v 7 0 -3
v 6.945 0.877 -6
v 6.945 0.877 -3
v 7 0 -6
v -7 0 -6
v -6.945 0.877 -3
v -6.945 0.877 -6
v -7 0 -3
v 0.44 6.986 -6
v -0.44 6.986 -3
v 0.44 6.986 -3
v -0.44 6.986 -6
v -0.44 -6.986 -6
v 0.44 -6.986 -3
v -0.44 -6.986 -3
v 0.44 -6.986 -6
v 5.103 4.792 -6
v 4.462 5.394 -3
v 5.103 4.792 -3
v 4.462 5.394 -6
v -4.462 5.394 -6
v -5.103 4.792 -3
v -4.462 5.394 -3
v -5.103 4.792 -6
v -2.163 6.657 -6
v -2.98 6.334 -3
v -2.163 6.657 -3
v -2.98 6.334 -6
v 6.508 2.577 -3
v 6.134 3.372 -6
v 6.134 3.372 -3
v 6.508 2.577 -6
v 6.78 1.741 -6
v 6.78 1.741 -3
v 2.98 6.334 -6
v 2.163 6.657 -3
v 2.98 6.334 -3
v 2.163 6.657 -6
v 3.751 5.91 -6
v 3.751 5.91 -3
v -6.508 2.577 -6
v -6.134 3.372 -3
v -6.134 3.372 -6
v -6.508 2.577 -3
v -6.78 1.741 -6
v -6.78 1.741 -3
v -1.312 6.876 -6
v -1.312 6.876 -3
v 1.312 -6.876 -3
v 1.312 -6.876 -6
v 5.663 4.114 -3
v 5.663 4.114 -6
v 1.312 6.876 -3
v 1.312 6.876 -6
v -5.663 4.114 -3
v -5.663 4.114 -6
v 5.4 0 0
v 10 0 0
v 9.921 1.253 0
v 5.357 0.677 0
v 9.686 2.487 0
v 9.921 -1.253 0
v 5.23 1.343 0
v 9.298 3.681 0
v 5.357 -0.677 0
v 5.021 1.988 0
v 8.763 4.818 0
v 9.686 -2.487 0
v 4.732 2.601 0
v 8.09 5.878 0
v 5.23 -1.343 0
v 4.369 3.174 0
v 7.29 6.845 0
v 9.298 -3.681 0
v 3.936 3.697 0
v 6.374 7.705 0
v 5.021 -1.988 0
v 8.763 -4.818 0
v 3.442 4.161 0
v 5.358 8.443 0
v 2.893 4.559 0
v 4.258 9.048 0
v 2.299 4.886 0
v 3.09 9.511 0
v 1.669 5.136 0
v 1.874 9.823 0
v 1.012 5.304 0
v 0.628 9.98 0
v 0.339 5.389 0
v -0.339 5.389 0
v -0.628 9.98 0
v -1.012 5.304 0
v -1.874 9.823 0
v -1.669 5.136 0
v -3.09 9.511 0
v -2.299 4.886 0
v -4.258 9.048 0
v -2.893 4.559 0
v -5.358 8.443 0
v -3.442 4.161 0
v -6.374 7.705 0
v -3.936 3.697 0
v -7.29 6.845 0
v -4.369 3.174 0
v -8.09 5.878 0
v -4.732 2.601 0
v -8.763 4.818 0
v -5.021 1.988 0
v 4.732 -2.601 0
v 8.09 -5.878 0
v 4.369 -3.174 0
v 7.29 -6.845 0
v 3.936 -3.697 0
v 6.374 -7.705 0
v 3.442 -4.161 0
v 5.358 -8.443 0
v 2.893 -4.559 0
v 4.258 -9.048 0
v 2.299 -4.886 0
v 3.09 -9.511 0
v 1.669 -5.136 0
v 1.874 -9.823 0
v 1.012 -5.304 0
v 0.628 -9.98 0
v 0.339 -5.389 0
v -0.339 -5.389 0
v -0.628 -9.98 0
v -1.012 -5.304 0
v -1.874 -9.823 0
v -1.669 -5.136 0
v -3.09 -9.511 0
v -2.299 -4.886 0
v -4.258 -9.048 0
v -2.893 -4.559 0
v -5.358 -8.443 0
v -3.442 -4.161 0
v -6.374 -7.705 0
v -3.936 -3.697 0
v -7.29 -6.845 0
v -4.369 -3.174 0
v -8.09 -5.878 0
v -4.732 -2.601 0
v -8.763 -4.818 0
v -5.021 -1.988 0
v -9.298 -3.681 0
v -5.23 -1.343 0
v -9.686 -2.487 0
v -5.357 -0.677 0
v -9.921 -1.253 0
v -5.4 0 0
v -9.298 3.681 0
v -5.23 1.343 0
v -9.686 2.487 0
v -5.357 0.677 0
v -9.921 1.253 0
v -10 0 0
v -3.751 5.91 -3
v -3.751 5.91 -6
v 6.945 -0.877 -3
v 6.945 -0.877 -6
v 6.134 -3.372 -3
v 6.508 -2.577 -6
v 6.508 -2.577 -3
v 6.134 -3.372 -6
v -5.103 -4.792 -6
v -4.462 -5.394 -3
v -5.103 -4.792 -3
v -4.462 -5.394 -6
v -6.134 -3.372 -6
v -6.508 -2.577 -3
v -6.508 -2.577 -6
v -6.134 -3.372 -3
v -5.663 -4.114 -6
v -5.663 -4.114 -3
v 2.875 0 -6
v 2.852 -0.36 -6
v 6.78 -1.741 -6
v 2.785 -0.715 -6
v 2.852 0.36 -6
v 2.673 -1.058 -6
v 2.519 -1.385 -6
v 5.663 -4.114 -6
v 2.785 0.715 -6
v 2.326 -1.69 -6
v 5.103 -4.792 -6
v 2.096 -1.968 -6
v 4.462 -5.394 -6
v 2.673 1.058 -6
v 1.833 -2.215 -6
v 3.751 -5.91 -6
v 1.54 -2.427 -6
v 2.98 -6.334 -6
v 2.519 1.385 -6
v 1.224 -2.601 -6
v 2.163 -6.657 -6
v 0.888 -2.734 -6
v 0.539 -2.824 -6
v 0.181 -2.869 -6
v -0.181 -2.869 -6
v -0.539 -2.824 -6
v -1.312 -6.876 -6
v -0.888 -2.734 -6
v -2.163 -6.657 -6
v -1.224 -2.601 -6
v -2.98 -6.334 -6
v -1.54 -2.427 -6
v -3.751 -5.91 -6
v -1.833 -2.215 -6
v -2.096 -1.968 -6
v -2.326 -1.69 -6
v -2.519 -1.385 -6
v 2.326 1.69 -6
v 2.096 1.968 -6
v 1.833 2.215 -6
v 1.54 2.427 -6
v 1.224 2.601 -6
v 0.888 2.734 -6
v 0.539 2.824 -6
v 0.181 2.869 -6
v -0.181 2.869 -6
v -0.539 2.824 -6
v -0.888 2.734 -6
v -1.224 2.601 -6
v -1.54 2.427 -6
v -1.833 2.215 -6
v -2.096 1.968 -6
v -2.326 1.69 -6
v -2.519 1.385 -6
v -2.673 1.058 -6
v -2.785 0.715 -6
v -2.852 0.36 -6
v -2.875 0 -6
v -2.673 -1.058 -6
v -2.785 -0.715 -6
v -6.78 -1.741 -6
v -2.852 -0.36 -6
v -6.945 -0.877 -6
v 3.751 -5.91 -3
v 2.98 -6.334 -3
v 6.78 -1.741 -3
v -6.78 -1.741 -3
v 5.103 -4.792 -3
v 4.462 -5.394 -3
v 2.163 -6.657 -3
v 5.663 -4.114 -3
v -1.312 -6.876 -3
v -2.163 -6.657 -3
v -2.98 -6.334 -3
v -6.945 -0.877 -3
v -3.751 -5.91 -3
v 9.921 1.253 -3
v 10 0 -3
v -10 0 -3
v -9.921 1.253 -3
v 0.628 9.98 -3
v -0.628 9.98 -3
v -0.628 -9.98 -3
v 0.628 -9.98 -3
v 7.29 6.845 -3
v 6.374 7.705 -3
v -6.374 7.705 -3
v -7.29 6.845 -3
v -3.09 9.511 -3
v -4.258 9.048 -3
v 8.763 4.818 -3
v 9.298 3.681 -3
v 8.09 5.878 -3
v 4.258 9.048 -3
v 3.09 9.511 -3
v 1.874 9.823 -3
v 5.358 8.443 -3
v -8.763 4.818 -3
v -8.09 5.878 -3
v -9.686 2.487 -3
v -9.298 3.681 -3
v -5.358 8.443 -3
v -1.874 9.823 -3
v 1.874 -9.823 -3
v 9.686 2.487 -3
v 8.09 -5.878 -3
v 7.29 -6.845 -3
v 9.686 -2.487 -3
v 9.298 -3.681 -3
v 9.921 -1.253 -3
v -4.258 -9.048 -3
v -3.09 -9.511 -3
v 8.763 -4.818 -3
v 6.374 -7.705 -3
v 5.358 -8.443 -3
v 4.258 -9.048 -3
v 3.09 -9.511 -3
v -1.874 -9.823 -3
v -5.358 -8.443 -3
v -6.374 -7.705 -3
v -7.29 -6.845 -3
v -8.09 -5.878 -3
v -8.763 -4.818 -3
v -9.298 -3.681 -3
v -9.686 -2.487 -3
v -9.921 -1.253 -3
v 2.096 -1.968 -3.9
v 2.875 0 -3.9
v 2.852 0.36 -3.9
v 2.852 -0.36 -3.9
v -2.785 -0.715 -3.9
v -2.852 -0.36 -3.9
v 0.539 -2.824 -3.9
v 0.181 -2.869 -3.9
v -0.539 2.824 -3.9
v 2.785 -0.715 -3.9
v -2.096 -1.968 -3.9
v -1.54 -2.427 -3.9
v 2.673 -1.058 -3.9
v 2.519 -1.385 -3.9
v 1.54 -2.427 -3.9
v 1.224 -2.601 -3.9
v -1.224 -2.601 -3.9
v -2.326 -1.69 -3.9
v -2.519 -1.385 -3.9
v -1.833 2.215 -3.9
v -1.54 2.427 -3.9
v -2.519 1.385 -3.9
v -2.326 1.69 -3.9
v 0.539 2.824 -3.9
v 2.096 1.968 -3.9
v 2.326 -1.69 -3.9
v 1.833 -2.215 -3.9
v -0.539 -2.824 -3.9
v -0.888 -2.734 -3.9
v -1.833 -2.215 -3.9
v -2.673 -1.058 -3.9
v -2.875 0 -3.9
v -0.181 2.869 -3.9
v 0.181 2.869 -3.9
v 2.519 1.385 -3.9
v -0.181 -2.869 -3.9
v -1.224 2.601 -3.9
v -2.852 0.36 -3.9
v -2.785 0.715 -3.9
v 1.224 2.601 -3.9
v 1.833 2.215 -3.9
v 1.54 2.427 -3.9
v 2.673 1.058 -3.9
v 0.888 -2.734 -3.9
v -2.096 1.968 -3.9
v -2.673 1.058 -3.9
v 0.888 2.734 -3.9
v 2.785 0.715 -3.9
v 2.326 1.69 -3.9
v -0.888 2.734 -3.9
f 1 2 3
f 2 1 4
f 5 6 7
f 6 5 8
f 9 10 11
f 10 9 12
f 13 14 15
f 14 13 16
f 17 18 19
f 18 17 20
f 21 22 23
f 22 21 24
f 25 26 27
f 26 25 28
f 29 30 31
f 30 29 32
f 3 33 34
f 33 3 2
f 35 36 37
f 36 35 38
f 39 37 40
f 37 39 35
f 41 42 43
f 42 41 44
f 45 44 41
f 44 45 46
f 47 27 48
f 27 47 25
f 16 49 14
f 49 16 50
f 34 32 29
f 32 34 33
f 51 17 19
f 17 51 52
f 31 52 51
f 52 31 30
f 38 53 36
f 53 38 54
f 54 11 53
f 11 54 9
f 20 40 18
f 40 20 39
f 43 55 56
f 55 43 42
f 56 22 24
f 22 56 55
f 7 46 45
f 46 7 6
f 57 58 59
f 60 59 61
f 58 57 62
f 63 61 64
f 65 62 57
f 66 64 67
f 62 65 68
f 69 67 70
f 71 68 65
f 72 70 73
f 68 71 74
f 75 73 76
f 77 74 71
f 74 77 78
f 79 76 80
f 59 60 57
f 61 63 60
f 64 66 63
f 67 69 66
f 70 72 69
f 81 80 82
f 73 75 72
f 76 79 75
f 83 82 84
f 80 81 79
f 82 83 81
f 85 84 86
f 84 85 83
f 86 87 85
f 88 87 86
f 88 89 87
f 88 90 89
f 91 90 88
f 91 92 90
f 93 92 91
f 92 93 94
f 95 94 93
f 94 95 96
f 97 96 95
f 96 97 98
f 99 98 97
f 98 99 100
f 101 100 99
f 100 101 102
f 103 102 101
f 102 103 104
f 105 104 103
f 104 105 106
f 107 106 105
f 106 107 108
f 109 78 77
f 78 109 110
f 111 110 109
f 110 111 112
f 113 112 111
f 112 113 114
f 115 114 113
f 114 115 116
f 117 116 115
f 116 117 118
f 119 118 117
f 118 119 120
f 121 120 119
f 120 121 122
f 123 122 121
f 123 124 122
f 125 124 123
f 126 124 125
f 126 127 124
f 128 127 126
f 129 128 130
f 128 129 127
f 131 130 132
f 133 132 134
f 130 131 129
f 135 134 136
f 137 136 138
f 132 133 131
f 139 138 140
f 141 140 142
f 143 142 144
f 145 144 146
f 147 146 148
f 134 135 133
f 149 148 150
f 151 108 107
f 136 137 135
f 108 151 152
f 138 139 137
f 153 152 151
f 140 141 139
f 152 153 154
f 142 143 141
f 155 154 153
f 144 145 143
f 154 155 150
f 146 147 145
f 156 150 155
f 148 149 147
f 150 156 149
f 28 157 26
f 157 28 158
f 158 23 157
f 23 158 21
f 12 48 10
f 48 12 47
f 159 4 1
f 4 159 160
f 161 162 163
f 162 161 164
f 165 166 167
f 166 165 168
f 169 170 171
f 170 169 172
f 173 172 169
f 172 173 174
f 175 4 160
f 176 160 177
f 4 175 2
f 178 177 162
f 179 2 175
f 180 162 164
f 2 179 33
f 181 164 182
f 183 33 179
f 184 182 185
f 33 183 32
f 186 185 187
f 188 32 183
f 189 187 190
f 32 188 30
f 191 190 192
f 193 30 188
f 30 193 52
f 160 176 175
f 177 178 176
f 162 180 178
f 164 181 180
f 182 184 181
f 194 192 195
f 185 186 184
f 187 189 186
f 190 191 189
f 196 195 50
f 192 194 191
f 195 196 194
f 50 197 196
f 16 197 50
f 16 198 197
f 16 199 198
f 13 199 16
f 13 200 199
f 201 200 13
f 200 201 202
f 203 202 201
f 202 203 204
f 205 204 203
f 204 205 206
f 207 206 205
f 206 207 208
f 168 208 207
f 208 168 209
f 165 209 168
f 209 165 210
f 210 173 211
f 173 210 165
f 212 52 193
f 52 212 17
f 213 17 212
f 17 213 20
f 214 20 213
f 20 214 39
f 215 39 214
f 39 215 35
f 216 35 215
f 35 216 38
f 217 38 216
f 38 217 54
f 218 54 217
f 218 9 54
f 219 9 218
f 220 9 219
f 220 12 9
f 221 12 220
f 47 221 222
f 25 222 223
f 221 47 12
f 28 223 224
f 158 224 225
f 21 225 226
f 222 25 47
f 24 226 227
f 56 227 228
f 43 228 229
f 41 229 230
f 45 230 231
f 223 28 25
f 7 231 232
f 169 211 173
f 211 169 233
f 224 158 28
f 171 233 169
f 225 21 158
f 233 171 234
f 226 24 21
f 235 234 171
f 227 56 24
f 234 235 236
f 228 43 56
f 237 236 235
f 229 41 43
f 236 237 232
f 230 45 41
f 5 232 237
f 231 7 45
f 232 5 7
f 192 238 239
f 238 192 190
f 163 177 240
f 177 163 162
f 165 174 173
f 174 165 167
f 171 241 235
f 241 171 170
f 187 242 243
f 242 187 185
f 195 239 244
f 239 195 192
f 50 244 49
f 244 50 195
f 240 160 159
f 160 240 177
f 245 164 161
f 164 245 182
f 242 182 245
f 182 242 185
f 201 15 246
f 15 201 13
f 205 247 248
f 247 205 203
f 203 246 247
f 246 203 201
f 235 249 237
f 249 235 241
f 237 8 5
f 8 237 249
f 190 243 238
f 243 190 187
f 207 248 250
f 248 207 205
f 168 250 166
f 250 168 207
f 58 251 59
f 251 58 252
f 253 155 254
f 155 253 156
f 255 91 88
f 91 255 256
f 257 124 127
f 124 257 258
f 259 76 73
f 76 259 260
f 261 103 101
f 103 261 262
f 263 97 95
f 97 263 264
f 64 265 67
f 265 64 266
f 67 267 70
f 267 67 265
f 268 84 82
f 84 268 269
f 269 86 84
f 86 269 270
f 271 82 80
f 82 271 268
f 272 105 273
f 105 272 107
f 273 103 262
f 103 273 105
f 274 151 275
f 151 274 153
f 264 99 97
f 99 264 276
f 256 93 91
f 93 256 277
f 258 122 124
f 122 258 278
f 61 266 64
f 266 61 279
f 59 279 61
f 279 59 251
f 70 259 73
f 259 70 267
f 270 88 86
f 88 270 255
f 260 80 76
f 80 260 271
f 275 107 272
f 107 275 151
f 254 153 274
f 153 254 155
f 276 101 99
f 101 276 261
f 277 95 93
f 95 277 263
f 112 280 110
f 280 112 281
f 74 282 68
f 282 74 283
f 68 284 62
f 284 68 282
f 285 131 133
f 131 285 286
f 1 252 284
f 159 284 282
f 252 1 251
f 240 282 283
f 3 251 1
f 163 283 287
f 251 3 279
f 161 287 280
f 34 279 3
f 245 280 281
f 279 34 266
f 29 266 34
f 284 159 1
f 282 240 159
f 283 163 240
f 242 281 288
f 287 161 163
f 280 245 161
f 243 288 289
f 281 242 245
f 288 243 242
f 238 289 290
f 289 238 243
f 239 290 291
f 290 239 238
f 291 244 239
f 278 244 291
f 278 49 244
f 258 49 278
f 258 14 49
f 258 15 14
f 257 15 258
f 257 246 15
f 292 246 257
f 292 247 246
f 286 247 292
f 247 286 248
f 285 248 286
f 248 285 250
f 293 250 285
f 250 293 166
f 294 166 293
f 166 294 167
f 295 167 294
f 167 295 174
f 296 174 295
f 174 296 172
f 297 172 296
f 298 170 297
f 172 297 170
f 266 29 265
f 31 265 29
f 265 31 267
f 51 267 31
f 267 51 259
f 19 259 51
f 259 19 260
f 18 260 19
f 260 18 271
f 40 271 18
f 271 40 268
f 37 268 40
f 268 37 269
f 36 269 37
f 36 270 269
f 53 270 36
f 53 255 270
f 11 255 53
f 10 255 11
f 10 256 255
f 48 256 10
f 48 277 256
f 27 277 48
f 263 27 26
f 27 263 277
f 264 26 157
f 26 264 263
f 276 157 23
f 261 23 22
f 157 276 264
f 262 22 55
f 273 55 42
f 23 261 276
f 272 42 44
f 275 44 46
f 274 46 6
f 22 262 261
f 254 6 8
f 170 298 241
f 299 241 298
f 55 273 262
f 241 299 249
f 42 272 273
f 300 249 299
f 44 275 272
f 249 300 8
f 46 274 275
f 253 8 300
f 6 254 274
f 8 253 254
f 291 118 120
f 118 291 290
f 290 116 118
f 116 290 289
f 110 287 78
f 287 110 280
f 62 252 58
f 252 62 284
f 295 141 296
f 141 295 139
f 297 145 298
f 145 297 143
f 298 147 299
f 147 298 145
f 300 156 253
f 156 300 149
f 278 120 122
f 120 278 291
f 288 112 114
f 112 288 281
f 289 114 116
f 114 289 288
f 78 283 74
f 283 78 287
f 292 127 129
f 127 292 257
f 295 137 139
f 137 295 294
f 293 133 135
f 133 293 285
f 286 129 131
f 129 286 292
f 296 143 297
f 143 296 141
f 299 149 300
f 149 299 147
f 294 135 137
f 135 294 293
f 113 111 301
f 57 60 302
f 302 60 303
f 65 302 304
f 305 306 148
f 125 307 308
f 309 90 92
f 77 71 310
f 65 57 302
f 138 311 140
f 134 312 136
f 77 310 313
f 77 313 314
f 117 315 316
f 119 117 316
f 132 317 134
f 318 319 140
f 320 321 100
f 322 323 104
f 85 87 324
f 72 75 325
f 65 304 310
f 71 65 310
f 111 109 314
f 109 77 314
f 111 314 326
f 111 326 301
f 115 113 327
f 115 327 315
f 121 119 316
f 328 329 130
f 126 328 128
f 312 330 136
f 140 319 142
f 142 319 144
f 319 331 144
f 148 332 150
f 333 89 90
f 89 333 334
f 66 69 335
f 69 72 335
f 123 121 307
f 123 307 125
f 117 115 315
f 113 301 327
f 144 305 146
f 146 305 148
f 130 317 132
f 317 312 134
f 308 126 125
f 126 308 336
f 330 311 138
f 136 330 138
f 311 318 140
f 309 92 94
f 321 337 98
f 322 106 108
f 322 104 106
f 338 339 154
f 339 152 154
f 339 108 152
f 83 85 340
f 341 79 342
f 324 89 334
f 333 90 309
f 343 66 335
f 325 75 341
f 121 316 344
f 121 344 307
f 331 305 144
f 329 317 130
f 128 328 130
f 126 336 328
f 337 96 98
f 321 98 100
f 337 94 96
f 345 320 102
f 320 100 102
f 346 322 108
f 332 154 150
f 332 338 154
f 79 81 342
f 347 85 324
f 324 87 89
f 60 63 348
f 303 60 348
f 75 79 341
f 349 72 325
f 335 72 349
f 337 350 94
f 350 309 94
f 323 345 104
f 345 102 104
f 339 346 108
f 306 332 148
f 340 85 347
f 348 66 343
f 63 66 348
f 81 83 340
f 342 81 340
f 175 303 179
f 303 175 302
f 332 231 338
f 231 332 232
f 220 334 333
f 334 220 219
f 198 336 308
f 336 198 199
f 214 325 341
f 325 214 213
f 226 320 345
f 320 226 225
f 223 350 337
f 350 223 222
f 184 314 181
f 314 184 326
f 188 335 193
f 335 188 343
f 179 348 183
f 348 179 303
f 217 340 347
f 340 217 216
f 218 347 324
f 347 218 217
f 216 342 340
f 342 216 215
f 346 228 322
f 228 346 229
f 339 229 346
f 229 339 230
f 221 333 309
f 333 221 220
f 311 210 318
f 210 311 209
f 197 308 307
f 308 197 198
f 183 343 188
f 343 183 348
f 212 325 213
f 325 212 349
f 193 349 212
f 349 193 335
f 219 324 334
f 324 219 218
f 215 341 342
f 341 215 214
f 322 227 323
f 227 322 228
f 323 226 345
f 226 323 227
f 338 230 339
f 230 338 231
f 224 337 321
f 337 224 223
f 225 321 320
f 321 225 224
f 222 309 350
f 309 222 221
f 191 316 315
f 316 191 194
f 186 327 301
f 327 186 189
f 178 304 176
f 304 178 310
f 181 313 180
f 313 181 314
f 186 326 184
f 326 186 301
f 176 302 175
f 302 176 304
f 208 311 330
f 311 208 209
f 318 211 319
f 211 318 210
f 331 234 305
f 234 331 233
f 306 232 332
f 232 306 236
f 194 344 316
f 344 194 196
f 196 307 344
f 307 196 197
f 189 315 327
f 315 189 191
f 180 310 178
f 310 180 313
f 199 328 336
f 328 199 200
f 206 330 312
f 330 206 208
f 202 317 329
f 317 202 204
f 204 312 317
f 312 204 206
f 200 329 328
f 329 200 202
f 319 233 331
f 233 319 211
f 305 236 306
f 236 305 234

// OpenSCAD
$fn = 50;


difference() {
	union() {
		translate(v = [0, 0, -6.0000000000]) {
			cylinder(h = 6, r = 7.0000000000);
		}
		translate(v = [0, 0, -3.0000000000]) {
			cylinder(h = 3, r = 10.0000000000);
		}
	}
	union() {
		translate(v = [0, 0, 0]) {
			rotate(a = [0, 0, 0]) {
				difference() {
					union() {
						#translate(v = [0, 0, -6.0000000000]) {
							cylinder(h = 6, r = 2.6000000000);
						}
						#translate(v = [0, 0, -3.9000000000]) {
							cylinder(h = 3.9000000000, r1 = 2.8750000000, r2 = 5.4000000000);
						}
						#translate(v = [0, 0, -6.0000000000]) {
							cylinder(h = 6, r = 2.8750000000);
						}
						#translate(v = [0, 0, -6.0000000000]) {
							cylinder(h = 6, r = 2.6000000000);
						}
					}
					union();
				}
			}
		}
	}
}
